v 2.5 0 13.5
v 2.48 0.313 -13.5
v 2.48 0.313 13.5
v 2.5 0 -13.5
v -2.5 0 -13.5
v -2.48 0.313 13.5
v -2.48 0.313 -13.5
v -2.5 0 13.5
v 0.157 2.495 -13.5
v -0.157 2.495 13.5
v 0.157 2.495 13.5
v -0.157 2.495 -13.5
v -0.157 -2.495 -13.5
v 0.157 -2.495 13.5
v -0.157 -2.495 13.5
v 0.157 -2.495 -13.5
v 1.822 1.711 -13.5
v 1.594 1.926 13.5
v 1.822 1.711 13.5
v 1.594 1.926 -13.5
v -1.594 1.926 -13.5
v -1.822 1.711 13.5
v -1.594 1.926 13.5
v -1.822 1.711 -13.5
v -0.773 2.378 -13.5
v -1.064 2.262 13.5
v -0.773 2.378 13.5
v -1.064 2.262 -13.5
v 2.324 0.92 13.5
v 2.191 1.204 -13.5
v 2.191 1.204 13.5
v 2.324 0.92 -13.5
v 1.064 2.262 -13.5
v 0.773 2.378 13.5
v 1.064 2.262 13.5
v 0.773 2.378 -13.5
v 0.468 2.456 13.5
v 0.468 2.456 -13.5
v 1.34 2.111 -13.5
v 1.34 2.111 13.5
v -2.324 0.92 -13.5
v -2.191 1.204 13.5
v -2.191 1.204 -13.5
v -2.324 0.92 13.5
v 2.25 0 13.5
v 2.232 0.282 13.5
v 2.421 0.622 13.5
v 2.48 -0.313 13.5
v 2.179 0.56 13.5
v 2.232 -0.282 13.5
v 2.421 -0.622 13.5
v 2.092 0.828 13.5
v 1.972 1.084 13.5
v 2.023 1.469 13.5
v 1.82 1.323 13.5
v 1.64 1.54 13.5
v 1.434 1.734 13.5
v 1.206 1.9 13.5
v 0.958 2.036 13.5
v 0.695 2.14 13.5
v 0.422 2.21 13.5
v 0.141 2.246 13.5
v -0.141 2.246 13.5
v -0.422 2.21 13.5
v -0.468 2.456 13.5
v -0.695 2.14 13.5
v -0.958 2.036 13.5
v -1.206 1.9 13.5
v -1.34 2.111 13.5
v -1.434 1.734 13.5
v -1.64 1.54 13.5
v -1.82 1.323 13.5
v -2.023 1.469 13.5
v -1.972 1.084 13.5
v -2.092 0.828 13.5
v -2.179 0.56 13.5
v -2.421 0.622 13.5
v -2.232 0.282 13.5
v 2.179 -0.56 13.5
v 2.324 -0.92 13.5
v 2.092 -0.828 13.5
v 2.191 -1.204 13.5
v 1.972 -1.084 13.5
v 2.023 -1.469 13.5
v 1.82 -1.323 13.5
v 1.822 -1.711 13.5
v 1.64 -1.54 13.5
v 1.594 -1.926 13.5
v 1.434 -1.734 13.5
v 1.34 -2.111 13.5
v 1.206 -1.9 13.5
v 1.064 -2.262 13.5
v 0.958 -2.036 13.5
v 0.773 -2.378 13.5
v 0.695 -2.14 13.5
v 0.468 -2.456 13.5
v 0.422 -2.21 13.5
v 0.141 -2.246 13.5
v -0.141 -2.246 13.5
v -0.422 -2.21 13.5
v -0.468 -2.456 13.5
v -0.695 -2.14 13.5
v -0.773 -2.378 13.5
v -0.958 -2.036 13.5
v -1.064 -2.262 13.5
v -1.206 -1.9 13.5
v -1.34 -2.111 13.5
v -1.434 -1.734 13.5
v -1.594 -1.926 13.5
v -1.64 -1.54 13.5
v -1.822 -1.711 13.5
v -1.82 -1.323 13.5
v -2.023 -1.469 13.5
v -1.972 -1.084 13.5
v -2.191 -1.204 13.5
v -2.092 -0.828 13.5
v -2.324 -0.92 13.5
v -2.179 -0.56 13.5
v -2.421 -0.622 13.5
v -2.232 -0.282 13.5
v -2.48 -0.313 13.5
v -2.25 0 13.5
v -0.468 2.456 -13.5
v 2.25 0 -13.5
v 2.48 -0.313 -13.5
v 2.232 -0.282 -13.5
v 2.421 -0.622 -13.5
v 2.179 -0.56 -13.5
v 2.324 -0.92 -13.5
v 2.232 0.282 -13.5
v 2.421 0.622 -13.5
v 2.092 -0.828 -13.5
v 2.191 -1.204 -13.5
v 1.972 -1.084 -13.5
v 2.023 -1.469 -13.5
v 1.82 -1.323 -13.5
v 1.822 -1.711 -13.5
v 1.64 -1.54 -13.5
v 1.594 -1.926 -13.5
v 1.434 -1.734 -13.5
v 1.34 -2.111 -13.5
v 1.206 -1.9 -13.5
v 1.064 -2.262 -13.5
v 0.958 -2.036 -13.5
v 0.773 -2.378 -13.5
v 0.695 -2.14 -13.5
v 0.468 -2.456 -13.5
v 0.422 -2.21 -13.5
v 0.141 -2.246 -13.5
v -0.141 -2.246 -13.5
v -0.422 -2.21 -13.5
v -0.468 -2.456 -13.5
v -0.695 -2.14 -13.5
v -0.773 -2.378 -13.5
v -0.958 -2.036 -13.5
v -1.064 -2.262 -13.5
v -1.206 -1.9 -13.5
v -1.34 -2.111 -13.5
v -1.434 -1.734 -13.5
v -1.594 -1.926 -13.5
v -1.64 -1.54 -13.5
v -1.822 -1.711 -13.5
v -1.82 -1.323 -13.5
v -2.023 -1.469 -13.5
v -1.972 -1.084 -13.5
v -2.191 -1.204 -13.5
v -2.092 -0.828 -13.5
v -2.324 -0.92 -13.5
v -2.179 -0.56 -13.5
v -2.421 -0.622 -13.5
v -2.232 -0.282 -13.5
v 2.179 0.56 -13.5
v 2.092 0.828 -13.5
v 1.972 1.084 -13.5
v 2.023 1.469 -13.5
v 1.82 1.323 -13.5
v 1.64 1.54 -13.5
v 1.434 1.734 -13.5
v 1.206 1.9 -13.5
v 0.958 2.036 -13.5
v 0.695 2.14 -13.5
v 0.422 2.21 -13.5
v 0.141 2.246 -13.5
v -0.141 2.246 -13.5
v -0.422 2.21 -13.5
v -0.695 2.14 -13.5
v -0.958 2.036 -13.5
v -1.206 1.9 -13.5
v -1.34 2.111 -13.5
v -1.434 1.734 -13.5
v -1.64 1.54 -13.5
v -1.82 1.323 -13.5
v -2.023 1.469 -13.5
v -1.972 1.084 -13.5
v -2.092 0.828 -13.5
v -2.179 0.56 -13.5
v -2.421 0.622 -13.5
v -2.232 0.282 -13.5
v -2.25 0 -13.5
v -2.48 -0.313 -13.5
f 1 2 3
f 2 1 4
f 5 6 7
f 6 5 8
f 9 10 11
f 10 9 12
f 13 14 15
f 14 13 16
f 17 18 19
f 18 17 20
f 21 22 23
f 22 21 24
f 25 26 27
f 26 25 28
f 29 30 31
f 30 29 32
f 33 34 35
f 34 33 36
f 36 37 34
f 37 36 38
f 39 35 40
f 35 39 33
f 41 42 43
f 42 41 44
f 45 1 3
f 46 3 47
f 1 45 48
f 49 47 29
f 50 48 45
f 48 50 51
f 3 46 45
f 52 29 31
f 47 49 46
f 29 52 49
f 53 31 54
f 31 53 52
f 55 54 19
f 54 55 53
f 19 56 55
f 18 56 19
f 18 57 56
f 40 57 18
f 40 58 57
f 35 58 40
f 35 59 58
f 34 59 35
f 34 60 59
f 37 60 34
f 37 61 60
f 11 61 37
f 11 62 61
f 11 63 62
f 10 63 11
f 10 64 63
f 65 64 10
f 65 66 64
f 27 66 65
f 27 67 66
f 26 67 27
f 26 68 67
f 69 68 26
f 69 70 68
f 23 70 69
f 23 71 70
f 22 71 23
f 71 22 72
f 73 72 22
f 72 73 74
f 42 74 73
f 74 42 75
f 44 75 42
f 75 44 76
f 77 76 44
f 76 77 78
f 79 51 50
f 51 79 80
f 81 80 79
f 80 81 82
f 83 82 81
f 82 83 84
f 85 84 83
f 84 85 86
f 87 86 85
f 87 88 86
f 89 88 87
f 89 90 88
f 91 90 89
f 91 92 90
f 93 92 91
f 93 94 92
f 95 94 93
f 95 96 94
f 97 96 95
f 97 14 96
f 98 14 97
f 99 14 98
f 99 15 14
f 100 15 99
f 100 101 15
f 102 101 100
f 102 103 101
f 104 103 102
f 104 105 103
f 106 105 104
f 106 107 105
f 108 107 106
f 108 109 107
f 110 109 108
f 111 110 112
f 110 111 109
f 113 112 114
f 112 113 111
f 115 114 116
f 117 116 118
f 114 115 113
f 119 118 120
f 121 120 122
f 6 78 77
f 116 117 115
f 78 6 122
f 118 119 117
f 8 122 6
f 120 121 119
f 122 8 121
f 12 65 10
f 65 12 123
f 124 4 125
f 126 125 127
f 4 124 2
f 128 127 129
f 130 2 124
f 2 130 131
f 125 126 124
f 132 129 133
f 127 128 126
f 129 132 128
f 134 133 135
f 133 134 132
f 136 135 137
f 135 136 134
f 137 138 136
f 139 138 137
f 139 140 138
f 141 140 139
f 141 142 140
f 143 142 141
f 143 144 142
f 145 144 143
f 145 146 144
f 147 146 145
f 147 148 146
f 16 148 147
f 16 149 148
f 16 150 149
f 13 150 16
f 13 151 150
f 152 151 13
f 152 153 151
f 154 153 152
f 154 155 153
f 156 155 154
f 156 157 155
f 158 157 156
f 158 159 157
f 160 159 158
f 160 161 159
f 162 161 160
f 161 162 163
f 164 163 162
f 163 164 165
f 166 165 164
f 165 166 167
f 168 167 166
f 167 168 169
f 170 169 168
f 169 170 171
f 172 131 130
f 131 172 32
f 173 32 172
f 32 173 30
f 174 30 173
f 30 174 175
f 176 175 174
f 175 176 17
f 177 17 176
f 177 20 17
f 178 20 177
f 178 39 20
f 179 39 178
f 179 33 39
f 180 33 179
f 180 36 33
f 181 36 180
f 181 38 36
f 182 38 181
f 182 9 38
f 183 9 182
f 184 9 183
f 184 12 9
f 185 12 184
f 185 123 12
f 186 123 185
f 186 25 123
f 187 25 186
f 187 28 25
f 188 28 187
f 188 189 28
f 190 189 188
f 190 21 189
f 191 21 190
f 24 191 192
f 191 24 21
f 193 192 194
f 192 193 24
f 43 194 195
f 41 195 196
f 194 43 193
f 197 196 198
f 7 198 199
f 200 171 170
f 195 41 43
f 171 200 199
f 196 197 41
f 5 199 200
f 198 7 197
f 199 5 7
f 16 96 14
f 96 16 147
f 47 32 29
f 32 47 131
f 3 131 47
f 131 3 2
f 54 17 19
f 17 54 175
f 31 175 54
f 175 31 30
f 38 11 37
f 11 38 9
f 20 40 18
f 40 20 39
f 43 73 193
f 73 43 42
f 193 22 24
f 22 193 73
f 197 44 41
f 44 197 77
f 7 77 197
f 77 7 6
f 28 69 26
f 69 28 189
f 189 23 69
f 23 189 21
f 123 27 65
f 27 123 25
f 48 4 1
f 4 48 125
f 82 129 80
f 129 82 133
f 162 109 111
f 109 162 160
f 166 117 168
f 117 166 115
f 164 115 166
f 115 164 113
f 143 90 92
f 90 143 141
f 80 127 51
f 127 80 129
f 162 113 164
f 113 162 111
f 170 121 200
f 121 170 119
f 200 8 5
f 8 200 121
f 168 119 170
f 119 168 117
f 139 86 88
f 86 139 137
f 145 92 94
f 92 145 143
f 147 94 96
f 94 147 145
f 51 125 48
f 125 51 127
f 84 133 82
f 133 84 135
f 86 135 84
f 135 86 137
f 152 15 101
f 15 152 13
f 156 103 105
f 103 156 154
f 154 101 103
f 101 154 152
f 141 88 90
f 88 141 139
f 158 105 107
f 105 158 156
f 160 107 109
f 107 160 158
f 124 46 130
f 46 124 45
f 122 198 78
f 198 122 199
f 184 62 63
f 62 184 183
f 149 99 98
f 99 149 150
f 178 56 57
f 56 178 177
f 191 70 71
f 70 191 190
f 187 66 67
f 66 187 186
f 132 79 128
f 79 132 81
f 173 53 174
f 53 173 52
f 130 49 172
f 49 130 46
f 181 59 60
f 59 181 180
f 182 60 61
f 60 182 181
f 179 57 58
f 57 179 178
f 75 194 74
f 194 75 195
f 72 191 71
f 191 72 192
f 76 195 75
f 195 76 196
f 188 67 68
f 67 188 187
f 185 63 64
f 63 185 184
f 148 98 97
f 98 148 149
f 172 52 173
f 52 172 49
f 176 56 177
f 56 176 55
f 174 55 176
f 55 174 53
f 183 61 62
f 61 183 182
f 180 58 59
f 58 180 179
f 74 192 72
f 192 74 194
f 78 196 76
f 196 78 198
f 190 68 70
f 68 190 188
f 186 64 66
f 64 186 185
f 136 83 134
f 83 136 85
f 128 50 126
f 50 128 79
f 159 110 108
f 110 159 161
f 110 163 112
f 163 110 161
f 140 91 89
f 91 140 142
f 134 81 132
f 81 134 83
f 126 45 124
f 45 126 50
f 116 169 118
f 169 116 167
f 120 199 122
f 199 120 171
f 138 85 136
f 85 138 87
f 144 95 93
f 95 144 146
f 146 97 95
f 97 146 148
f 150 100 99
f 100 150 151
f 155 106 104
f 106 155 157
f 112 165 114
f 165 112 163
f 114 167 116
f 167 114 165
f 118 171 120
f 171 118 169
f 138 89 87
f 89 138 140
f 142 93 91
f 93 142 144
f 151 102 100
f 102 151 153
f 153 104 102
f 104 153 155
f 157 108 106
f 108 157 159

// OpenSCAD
$fn = 50;


difference() {
	union() {
		translate(v = [0, 0, -13.5000000000]) {
			cylinder(h = 27, r = 2.5000000000);
		}
	}
	union() {
		translate(v = [0, 0, -100.0000000000]) {
			cylinder(h = 200, r = 2.2500000000);
		}
	}
}
